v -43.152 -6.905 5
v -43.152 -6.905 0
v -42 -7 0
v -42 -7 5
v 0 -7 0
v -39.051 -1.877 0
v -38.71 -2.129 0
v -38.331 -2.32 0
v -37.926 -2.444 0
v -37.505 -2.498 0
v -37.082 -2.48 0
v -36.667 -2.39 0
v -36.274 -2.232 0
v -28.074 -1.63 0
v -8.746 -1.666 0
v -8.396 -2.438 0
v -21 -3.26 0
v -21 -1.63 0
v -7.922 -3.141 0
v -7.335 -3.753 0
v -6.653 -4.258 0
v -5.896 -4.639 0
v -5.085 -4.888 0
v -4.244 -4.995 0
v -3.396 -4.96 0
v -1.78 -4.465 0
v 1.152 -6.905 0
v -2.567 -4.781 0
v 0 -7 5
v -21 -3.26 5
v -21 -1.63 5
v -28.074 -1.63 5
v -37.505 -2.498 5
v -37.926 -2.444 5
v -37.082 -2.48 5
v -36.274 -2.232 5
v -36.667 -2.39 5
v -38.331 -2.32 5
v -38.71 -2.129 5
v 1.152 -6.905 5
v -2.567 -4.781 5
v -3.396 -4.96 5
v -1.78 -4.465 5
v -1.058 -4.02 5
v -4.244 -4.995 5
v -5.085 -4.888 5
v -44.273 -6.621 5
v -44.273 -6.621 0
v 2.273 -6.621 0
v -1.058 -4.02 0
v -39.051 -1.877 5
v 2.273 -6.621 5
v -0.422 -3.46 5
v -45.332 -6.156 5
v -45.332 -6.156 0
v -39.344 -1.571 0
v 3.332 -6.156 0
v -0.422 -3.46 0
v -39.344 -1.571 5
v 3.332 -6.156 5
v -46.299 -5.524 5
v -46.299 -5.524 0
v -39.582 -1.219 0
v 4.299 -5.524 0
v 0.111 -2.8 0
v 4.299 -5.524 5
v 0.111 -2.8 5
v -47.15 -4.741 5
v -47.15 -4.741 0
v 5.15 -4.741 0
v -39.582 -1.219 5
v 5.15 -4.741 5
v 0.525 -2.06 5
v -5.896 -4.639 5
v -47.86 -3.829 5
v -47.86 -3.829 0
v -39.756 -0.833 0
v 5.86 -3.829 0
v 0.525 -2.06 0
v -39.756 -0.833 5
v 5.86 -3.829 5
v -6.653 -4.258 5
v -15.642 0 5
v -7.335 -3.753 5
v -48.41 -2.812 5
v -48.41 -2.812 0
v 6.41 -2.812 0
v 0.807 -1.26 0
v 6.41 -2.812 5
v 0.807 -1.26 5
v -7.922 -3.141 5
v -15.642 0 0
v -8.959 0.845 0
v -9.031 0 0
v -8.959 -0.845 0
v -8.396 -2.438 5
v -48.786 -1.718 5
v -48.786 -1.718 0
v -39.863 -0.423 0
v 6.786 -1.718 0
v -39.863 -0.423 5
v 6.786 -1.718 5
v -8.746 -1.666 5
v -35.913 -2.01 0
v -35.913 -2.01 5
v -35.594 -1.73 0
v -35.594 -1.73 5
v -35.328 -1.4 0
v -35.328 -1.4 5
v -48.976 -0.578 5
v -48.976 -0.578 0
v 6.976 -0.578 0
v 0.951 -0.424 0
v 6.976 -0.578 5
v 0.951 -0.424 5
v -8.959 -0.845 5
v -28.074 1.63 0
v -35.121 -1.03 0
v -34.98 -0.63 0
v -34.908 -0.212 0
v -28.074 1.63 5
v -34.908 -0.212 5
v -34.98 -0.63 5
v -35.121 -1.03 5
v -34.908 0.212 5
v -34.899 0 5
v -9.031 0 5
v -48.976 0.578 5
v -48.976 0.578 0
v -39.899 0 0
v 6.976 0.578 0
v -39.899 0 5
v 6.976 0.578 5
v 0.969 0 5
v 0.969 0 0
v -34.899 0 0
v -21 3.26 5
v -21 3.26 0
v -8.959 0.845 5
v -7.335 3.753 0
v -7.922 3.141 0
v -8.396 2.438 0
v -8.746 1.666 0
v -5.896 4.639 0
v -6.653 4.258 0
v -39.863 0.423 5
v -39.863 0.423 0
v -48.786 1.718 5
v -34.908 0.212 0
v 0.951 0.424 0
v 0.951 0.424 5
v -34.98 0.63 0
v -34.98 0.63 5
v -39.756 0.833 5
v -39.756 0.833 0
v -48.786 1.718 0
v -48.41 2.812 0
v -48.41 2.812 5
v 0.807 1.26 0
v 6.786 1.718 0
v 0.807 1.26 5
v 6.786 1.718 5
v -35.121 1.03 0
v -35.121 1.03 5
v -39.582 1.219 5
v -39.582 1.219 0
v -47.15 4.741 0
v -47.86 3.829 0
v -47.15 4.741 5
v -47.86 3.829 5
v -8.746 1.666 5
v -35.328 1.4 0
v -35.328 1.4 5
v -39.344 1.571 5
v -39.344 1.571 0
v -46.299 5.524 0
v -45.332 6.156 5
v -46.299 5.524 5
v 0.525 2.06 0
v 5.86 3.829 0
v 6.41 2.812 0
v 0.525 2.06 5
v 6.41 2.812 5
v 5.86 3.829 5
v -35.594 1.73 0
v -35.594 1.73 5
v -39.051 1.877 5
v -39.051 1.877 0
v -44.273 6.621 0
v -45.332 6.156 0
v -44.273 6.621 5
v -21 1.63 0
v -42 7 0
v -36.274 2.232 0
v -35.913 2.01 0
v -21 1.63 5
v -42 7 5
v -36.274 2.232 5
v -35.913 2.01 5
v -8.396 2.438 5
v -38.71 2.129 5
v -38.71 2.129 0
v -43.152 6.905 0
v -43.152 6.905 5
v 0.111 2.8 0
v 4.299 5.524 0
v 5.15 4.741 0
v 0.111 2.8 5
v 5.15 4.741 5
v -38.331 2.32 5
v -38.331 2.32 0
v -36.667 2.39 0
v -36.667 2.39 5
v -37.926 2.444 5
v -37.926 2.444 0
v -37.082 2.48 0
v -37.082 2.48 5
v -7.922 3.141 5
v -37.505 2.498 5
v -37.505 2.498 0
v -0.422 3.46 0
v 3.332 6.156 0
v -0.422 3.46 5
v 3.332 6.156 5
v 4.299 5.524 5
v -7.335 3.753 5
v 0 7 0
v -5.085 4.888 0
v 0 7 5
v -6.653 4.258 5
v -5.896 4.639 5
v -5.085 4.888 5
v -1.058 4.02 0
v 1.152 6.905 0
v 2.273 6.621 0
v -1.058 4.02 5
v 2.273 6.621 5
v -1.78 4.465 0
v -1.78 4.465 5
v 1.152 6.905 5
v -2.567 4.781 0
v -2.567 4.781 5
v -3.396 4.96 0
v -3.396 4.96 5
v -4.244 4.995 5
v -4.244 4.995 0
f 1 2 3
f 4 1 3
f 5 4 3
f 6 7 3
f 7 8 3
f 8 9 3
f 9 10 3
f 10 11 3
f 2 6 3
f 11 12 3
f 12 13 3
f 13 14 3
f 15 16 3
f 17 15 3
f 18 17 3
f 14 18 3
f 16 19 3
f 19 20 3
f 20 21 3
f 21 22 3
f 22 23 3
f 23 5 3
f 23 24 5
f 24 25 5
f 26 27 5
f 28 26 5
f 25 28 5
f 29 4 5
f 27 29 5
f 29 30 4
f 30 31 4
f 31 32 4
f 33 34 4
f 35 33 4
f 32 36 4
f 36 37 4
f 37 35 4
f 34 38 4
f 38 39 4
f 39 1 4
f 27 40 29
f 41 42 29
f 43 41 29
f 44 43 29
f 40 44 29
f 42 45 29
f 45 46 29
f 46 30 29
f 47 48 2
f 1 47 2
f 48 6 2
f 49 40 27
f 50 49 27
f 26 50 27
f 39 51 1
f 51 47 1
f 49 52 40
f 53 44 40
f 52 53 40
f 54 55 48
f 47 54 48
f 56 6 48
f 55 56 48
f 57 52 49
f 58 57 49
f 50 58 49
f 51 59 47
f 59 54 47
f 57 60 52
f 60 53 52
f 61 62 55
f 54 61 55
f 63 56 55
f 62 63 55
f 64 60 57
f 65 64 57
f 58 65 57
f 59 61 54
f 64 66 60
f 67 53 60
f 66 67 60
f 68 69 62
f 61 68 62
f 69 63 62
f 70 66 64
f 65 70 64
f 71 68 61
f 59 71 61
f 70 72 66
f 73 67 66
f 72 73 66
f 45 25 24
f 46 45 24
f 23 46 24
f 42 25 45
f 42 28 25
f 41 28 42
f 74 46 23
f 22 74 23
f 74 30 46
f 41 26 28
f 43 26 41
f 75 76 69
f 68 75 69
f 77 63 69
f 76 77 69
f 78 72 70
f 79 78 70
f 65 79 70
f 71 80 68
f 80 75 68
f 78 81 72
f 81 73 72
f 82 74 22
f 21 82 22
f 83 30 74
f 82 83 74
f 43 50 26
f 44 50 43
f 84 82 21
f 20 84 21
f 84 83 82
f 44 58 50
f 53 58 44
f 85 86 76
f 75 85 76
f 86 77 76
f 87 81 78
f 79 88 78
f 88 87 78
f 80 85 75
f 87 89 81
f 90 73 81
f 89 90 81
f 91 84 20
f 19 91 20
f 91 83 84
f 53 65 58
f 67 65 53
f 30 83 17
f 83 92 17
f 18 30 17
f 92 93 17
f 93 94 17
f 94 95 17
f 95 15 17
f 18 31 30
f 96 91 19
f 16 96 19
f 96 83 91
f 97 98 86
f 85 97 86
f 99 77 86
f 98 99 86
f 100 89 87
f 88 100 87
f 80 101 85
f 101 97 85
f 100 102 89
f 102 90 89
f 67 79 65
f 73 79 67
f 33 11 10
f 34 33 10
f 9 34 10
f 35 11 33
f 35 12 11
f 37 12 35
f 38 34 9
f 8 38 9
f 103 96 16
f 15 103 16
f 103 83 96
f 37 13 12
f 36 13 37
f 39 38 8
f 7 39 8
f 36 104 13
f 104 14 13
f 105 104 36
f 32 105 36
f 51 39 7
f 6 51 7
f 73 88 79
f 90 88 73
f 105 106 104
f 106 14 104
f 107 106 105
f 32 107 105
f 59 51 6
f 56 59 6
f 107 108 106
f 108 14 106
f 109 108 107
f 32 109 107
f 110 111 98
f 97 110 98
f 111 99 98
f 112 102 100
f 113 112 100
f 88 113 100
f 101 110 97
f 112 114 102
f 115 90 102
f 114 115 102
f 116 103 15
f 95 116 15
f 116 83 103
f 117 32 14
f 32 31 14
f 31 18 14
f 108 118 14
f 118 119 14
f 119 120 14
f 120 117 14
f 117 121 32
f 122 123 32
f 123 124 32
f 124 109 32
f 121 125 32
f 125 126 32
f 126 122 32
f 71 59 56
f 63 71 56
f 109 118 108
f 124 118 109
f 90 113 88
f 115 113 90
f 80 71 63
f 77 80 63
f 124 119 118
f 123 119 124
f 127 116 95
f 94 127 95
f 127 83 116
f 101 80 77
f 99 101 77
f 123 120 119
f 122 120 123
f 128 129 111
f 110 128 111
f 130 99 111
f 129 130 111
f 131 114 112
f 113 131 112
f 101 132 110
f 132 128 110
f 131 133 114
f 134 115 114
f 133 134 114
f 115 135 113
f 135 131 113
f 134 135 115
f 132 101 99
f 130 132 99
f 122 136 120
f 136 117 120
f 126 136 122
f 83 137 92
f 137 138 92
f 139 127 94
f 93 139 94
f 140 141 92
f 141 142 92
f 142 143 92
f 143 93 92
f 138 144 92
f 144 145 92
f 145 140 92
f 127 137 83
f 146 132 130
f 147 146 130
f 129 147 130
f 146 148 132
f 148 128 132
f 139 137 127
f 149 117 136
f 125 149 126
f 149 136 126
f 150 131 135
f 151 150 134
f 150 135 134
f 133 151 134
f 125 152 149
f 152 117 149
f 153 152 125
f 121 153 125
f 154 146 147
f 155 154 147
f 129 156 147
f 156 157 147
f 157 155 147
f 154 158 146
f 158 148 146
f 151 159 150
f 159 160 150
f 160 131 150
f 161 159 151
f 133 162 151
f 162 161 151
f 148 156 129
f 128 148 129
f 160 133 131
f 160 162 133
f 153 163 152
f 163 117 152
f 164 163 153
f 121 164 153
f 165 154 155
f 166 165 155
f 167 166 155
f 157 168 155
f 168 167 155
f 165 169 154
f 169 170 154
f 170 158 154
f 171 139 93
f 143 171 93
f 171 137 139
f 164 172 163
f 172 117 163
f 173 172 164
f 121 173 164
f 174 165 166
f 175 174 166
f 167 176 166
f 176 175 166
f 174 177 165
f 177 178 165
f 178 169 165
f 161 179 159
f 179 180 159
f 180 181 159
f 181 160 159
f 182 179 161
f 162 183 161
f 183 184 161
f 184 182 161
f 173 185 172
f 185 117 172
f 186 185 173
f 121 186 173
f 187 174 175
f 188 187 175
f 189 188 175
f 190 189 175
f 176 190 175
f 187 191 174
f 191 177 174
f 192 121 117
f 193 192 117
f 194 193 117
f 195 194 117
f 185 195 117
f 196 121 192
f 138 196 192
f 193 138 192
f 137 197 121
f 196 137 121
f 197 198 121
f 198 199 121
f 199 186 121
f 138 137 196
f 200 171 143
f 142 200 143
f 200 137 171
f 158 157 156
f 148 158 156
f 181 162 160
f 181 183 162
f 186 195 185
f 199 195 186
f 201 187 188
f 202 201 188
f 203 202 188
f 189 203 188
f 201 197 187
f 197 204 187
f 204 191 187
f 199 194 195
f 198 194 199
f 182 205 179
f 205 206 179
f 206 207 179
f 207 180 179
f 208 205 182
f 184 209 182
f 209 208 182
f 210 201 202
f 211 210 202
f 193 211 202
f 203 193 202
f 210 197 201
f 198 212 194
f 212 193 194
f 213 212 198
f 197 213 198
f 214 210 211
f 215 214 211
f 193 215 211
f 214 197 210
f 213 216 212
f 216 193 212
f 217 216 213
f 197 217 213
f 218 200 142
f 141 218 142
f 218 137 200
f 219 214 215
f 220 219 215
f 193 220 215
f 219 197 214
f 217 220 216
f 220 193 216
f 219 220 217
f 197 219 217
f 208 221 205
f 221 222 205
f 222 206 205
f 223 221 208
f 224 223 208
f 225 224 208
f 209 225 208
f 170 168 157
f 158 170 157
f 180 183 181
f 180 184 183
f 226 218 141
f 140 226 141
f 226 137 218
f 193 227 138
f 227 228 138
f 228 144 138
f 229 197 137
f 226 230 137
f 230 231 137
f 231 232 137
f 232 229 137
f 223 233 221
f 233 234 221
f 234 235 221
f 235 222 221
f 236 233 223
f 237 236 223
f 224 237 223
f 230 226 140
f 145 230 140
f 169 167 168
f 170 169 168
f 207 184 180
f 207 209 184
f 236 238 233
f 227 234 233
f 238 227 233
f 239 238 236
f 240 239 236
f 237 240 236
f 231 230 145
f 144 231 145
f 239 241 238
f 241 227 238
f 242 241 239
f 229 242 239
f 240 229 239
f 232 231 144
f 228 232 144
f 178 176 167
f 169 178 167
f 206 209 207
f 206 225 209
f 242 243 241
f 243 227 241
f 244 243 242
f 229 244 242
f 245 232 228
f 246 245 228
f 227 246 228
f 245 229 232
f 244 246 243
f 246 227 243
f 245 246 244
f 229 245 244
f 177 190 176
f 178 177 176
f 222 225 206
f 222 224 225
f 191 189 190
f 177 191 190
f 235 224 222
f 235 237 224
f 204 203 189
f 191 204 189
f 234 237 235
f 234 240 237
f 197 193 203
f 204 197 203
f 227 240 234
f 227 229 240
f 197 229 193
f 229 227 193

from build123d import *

# Parameters (mm, degrees)
SKETCH_1_R      = 2.5
SKETCH_1_R_2    = 5
EXTRUDE_1_DEPTH = 5


with BuildPart() as part:
    # 草圖1 → 填料-伸長1 (new body)
    with BuildSketch(Plane.XY):
        with BuildLine():
            Line((-42, -7), (0, -7))
            ThreePointArc((0, -7), (7, 0), (0, 7))
            Line((0, 7), (-42, 7))
            ThreePointArc((-42, 7), (-49, 0), (-42, -7))
        make_face()
        with Locations((-37.399198152, 0)):
            Circle(SKETCH_1_R, mode=Mode.SUBTRACT)
        Polygon((-21, 3.260013757), (-15.641541971, 0), (-21, -3.260013757), (-21, -1.630006879), (-28.07448836, -1.630006879), (-28.07448836, 1.630006879), (-21, 1.630006879), align=None, mode=Mode.SUBTRACT)
        with Locations((-4.031364092, 0)):
            Circle(SKETCH_1_R_2, mode=Mode.SUBTRACT)
    extrude(amount=EXTRUDE_1_DEPTH)


solid = part.part
